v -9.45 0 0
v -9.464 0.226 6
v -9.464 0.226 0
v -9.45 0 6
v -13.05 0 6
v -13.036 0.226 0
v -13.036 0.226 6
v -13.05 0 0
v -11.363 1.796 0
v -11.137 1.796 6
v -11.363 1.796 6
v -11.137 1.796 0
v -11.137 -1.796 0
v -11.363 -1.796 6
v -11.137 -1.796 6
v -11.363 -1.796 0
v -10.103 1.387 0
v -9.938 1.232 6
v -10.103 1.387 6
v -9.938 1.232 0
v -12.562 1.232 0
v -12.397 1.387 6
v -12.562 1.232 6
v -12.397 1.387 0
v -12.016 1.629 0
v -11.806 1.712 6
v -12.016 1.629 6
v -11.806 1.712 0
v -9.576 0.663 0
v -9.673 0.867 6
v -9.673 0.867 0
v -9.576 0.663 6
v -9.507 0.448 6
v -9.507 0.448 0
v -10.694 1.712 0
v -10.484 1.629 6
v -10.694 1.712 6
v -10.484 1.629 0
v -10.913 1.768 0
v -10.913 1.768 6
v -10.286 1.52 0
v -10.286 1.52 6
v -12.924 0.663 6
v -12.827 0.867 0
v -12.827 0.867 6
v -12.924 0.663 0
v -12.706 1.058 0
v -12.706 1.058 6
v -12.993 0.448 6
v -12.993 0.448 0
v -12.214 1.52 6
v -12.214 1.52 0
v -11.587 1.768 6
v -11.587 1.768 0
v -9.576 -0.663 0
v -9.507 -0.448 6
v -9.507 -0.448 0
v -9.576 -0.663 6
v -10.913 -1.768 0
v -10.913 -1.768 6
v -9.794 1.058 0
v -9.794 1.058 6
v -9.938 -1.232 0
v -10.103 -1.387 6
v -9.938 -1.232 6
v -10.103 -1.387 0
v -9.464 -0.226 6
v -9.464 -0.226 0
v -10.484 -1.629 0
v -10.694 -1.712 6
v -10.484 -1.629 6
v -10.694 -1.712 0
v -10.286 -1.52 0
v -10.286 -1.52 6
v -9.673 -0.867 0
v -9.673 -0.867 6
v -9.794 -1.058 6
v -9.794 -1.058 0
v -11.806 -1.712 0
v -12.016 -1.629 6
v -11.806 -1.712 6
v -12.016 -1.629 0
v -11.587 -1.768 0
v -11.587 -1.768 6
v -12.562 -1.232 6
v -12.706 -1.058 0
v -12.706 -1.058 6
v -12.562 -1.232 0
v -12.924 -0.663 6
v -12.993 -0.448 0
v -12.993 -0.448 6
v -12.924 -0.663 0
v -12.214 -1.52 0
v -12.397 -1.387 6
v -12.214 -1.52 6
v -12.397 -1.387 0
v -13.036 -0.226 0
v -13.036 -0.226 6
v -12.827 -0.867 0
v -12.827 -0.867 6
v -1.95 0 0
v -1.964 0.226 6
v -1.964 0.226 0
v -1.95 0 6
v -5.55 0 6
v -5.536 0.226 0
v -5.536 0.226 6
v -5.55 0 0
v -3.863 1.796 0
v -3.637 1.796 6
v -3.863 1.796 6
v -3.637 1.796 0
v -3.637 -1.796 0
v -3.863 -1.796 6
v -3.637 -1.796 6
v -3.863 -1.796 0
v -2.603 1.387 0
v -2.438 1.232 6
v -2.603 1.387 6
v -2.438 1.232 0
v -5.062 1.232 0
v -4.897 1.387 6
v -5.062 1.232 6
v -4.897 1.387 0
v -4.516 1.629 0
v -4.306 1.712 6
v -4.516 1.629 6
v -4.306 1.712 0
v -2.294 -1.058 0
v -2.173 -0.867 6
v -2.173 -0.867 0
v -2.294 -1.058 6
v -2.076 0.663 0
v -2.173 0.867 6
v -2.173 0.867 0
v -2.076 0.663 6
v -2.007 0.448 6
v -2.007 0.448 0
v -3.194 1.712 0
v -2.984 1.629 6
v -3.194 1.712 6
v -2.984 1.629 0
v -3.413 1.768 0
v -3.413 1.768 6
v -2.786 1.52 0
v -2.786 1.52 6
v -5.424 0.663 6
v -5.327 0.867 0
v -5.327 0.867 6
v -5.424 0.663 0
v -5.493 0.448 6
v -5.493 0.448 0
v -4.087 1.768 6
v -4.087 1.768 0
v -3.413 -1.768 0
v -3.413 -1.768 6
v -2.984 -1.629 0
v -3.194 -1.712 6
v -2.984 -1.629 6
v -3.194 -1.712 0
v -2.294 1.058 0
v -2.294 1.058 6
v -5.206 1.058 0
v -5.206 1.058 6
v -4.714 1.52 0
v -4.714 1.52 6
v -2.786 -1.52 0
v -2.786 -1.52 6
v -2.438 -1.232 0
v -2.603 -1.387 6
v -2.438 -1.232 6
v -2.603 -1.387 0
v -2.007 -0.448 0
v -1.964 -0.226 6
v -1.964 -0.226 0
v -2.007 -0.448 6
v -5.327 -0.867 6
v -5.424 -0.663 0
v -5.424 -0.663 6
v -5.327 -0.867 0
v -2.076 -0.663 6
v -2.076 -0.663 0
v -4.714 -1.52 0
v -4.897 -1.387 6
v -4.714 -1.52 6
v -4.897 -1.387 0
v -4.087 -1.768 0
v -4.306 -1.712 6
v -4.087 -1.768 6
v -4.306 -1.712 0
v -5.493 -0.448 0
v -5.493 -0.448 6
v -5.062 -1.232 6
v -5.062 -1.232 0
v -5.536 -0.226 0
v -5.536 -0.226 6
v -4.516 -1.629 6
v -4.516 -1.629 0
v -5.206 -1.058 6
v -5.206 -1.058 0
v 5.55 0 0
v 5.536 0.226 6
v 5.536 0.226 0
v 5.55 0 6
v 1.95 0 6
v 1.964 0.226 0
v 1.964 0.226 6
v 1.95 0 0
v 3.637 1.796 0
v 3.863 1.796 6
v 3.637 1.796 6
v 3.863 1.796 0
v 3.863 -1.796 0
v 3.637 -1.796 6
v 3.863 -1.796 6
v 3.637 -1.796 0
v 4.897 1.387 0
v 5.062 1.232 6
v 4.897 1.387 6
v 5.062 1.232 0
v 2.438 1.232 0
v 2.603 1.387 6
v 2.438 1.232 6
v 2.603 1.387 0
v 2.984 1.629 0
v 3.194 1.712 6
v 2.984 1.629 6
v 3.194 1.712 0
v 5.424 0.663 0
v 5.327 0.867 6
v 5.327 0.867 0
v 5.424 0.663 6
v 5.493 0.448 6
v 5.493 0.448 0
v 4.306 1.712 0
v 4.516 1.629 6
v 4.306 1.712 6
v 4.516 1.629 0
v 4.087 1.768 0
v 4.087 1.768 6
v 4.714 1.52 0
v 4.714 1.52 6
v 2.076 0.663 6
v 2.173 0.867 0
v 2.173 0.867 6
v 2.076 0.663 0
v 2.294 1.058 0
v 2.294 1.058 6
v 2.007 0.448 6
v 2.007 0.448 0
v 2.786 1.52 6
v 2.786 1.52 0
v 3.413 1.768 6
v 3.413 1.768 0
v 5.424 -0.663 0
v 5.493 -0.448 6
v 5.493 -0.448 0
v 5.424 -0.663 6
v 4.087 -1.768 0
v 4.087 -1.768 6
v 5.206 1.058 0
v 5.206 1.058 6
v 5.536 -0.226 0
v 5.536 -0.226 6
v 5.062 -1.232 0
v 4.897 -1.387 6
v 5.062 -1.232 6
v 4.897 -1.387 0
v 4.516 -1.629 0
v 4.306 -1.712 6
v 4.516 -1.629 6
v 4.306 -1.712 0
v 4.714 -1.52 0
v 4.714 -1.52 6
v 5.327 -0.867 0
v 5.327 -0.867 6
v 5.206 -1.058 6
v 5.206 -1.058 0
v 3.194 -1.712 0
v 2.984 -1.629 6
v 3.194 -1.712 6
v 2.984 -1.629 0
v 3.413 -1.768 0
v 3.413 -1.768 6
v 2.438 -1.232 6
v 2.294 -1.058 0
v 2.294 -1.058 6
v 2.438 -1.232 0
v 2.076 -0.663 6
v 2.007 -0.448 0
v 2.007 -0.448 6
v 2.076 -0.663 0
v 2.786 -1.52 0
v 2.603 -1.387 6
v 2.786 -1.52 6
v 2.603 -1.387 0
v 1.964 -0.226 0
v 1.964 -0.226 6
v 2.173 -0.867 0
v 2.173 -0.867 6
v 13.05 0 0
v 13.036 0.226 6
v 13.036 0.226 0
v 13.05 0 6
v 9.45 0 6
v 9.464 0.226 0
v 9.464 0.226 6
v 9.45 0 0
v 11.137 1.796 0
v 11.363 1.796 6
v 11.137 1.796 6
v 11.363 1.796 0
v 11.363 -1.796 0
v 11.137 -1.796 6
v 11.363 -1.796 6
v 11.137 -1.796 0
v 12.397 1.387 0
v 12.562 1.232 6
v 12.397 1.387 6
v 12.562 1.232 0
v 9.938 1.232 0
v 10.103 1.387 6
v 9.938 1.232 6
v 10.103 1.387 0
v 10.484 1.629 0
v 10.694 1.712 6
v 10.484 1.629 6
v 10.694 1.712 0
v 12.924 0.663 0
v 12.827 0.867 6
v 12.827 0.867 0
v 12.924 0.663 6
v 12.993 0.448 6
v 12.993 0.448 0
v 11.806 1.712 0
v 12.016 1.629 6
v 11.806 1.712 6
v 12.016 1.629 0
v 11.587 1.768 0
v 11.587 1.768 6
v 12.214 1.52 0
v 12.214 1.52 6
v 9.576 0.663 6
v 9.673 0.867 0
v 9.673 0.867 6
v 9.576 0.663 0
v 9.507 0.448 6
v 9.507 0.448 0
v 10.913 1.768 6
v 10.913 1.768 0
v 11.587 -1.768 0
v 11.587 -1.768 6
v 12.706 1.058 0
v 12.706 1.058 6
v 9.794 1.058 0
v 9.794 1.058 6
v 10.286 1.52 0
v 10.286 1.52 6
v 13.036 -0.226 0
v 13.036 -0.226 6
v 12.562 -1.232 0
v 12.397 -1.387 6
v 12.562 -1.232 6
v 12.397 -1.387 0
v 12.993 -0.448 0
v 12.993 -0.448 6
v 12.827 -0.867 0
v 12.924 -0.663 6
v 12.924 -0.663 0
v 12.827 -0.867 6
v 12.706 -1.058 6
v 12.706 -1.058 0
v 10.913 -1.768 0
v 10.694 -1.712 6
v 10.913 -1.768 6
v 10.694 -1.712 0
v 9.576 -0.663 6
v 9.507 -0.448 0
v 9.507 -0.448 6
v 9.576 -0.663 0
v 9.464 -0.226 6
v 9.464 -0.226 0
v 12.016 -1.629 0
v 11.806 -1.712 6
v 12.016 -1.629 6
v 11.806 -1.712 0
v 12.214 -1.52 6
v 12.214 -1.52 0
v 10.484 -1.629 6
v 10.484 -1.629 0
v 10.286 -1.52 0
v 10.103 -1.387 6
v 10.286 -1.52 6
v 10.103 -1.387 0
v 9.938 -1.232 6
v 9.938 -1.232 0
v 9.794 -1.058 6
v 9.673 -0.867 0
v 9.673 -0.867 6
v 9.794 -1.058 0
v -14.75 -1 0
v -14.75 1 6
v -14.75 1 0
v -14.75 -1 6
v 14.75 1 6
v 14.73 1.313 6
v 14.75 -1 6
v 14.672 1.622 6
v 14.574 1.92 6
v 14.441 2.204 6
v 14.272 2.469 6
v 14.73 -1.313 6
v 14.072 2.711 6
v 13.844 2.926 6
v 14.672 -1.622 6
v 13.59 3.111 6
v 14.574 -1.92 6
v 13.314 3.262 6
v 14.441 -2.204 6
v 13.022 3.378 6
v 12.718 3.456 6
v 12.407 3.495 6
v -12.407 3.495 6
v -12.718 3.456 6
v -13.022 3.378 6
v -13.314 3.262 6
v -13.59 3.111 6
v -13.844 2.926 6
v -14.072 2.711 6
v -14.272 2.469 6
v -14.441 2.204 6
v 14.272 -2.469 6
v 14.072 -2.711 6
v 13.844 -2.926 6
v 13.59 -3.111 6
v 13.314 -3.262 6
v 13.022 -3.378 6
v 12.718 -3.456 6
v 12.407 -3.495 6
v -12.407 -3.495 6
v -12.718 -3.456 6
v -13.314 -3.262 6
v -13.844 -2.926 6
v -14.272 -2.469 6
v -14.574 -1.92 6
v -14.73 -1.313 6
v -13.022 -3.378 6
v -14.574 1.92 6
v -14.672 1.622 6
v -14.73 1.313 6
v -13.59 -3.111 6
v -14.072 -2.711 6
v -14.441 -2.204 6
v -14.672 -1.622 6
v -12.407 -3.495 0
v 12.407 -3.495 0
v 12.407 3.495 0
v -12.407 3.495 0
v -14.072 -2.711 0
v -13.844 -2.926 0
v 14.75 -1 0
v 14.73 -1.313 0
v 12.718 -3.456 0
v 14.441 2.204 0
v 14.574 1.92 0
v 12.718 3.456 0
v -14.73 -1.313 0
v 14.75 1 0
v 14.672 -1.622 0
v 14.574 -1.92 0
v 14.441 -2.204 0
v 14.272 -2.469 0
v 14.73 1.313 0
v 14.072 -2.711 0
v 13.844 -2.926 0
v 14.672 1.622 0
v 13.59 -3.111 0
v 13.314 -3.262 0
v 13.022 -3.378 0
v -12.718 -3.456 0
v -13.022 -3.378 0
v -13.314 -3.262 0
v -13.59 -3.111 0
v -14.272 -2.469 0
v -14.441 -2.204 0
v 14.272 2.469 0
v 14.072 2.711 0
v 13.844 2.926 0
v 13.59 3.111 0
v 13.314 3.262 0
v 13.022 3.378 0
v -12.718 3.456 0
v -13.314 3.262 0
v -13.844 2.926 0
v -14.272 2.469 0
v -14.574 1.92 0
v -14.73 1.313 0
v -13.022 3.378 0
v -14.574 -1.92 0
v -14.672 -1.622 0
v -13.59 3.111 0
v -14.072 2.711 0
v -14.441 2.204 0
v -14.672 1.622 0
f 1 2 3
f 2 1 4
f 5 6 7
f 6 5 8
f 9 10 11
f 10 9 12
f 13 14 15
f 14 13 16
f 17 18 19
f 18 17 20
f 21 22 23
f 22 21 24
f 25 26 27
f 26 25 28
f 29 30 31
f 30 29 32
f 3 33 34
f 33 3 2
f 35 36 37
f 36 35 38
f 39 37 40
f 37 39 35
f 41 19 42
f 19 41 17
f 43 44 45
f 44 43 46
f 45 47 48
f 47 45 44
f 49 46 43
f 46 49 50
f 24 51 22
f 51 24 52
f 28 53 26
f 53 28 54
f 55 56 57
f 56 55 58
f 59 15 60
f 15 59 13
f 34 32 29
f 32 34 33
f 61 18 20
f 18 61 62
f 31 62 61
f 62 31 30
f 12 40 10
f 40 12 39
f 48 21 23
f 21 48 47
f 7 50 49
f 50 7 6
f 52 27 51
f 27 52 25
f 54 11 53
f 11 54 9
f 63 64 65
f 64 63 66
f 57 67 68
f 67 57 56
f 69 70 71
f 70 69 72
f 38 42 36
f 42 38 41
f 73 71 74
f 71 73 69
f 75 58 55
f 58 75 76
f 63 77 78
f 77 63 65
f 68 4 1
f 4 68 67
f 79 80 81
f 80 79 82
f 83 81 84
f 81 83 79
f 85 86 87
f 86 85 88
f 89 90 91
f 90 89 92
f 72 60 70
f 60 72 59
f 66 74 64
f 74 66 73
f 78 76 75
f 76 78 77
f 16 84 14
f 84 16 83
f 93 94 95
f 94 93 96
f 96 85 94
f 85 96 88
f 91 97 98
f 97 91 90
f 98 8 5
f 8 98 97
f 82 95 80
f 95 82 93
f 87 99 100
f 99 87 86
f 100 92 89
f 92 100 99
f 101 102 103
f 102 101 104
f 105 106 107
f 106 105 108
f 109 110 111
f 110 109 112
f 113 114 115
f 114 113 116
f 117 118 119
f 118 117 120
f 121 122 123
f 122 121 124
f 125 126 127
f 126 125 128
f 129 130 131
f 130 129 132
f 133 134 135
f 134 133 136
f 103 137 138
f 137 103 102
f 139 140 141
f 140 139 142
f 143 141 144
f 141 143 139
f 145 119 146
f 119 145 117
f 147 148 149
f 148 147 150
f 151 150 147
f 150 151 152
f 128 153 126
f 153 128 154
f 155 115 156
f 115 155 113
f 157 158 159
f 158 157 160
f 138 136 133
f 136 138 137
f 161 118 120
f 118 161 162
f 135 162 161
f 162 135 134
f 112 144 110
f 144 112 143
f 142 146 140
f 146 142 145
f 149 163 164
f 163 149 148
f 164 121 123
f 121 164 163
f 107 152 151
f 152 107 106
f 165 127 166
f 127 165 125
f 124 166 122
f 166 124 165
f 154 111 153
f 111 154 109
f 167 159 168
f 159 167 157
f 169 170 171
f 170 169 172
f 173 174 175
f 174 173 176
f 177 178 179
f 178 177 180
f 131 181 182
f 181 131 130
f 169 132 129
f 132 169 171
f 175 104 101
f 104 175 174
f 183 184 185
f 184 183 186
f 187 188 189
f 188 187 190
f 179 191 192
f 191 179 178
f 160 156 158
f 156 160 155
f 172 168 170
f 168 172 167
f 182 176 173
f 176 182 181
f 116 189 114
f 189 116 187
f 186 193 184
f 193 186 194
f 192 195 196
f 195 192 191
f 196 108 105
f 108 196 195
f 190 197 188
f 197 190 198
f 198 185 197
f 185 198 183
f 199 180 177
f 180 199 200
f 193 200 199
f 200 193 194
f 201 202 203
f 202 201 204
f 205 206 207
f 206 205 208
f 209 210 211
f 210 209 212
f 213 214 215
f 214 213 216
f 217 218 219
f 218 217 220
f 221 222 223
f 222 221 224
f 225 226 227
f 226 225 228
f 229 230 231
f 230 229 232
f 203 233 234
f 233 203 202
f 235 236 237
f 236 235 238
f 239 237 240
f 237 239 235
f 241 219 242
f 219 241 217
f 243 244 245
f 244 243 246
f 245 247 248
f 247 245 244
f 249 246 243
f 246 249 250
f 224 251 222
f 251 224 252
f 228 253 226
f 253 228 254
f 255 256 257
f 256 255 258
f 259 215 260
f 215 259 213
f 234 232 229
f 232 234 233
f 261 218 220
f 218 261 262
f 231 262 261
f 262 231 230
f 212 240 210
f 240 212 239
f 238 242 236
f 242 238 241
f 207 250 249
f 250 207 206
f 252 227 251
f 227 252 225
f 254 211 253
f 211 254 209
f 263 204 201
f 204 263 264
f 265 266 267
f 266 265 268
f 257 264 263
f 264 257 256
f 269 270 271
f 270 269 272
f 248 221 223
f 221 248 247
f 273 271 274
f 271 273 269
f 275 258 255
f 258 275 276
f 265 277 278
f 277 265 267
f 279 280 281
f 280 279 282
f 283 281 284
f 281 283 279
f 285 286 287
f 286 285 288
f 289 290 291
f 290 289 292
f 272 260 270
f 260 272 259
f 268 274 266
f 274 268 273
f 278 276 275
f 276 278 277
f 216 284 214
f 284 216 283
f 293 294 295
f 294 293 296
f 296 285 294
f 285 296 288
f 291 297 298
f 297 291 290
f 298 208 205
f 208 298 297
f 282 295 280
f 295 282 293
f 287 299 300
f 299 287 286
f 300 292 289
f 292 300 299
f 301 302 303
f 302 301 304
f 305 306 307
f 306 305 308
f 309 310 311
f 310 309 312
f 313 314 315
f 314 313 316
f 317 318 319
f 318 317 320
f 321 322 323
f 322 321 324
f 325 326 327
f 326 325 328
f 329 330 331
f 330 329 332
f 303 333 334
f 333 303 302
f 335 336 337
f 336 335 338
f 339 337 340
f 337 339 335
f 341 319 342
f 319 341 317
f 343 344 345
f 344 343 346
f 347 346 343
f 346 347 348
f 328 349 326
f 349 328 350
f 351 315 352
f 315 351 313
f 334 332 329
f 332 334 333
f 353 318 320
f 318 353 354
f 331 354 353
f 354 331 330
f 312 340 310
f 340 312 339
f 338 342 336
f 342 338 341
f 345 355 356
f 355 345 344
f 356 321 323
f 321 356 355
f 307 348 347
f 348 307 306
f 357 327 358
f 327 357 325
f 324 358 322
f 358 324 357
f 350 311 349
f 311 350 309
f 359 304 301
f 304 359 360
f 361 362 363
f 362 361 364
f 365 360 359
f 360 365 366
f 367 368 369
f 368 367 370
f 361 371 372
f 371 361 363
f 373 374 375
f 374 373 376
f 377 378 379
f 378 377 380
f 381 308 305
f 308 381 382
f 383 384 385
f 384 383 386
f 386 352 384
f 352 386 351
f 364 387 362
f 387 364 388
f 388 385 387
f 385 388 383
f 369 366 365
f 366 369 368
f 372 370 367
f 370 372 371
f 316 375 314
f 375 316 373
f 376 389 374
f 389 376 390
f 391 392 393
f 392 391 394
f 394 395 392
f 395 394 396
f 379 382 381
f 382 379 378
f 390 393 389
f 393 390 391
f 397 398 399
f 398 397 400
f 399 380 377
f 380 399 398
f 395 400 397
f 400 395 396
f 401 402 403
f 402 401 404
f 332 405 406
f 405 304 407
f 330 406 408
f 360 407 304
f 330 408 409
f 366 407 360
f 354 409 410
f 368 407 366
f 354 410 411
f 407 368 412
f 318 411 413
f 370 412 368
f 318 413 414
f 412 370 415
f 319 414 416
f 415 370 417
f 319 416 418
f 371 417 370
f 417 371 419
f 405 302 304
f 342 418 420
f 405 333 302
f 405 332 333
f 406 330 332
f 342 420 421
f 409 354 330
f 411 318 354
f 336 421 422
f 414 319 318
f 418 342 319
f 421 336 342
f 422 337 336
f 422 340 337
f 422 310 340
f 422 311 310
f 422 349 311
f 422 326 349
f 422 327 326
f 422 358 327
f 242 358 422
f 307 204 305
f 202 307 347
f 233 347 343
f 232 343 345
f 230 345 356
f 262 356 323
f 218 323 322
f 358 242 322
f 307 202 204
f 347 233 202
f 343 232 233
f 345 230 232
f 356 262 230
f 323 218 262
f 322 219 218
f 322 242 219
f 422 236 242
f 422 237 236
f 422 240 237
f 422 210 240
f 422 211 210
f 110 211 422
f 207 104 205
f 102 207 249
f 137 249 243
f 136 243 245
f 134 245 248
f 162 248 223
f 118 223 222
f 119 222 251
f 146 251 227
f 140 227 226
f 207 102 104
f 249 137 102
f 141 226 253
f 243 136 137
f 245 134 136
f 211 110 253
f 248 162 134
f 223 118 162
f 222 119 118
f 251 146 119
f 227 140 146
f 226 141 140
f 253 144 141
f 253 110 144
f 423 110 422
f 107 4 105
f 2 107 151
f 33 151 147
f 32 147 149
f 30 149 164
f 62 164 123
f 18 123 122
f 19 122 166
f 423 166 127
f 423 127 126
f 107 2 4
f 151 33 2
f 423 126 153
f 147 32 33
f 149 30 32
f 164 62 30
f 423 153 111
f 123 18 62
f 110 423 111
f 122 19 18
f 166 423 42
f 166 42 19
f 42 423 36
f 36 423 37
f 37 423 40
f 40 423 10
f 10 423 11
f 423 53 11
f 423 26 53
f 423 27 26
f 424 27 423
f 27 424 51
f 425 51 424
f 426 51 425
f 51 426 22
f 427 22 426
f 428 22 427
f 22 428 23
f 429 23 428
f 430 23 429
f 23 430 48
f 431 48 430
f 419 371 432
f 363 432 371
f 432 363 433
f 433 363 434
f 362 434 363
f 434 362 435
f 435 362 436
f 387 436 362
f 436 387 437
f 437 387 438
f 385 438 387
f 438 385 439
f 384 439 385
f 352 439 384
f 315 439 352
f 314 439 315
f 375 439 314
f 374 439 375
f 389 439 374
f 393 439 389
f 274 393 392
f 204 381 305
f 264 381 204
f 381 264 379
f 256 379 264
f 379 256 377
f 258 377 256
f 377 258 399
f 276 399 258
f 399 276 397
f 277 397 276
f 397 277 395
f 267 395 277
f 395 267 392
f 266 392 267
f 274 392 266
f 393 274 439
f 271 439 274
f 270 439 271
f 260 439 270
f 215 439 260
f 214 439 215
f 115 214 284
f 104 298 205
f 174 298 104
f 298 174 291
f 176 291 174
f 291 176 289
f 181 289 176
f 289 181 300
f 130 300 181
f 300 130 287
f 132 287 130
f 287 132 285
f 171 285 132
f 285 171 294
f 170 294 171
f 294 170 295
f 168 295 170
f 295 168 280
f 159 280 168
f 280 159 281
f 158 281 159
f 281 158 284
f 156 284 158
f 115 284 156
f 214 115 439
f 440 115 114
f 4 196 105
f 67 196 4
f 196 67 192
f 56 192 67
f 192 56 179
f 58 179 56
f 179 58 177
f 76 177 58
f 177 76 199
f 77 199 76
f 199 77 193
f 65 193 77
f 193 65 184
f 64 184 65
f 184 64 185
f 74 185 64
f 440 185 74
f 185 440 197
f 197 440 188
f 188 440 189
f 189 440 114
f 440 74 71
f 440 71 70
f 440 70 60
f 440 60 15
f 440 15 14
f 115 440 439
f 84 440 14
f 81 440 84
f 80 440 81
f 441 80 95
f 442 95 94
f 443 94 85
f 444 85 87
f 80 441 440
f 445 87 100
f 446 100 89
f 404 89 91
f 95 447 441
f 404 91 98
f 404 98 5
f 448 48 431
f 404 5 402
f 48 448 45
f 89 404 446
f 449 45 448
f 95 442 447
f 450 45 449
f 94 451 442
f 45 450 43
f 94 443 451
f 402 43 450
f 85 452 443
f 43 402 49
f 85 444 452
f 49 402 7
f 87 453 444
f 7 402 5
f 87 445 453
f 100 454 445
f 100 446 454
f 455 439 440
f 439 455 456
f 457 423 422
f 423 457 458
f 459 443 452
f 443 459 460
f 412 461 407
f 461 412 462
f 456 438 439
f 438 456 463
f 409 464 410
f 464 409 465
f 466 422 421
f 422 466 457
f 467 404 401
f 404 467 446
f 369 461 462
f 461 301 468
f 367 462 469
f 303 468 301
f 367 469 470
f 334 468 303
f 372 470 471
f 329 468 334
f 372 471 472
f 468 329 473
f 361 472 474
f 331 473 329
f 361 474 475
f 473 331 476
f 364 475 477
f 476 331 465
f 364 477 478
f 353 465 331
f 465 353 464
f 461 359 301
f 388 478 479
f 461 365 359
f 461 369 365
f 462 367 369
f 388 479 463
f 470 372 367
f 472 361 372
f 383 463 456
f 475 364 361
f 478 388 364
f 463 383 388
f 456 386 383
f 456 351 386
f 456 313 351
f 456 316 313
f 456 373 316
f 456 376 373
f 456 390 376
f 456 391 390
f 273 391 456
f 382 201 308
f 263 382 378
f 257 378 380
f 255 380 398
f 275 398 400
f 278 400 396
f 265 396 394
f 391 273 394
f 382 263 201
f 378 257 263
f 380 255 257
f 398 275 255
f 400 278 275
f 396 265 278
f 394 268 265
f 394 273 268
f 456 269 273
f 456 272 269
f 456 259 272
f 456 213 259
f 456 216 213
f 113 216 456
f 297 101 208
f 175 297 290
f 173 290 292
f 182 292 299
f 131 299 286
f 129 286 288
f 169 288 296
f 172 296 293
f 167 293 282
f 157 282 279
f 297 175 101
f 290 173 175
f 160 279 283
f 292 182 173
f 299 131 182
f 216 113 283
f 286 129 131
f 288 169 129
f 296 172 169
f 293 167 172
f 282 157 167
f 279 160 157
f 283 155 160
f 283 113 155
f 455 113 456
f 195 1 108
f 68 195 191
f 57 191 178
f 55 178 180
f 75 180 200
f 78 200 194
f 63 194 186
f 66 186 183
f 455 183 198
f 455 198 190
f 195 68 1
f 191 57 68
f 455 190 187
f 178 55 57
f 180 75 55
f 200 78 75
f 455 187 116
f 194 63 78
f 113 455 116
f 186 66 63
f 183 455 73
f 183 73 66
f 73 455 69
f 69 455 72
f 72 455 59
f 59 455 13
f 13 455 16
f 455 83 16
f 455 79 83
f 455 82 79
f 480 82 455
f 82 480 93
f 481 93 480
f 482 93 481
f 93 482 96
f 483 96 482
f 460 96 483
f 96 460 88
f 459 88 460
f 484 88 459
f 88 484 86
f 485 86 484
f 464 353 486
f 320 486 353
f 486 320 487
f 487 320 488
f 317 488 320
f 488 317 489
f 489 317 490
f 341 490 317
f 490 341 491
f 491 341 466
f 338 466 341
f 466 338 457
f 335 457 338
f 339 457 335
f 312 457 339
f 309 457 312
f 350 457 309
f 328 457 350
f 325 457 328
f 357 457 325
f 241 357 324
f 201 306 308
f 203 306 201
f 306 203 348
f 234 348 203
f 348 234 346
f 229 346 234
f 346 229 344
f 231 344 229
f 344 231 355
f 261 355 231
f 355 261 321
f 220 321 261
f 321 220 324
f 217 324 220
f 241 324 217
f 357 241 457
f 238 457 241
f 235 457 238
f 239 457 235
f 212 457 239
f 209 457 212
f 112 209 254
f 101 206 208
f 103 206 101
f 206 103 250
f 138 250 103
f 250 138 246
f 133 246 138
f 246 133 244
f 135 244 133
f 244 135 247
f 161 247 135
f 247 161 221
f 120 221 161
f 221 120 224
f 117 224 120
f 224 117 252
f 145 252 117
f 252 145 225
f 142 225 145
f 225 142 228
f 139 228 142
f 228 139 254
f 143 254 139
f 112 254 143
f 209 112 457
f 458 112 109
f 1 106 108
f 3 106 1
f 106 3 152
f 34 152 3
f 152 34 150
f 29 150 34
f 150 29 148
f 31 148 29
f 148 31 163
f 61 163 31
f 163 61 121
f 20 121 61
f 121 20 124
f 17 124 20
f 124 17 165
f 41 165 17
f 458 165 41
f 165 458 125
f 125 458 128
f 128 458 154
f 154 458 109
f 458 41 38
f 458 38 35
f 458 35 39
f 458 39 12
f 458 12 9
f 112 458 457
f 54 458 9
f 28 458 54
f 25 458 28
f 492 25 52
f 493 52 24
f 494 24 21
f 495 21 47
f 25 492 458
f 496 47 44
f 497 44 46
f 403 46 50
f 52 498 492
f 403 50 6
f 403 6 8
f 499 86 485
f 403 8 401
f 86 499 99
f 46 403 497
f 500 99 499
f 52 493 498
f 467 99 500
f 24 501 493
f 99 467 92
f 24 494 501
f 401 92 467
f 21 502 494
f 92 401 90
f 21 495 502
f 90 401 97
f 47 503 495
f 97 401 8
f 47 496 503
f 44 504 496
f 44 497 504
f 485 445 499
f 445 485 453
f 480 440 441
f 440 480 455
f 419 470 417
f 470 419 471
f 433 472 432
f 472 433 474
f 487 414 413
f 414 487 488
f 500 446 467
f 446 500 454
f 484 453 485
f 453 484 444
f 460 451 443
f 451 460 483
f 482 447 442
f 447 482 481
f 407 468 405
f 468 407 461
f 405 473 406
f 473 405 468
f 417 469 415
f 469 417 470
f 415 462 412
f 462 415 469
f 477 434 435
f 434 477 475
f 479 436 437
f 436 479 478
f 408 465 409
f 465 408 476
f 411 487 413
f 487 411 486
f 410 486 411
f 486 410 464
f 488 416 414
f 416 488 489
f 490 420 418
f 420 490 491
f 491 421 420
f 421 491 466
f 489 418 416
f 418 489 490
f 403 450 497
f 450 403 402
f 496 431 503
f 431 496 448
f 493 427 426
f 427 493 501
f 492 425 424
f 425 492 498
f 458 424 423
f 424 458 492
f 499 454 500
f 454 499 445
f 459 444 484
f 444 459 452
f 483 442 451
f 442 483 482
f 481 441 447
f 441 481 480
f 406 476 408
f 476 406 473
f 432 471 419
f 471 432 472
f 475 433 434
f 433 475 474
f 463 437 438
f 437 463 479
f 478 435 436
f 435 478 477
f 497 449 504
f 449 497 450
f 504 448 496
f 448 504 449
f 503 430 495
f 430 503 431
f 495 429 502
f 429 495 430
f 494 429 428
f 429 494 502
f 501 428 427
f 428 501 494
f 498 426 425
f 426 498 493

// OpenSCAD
$fn = 50;


difference() {
	union() {
		translate(v = [0, 0, 0]) {
			rotate(a = [0, 0, 0]) {
				hull() {
					translate(v = [-12.2500000000, 1.0000000000, 0]) {
						rotate(a = [0, 0, 0]) {
							translate(v = [0, 0, 0]) {
								rotate(a = [0, 0, 0]) {
									cylinder(h = 6, r = 2.5000000000);
								}
							}
						}
					}
					translate(v = [12.2500000000, 1.0000000000, 0]) {
						rotate(a = [0, 0, 0]) {
							translate(v = [0, 0, 0]) {
								rotate(a = [0, 0, 0]) {
									cylinder(h = 6, r = 2.5000000000);
								}
							}
						}
					}
					translate(v = [-12.2500000000, -1.0000000000, 0]) {
						rotate(a = [0, 0, 0]) {
							translate(v = [0, 0, 0]) {
								rotate(a = [0, 0, 0]) {
									cylinder(h = 6, r = 2.5000000000);
								}
							}
						}
					}
					translate(v = [12.2500000000, -1.0000000000, 0]) {
						rotate(a = [0, 0, 0]) {
							translate(v = [0, 0, 0]) {
								rotate(a = [0, 0, 0]) {
									cylinder(h = 6, r = 2.5000000000);
								}
							}
						}
					}
				}
			}
		}
	}
	union() {
		translate(v = [-11.2500000000, 0.0000000000, 0]) {
			rotate(a = [0, 0, 0]) {
				translate(v = [0, 0, -50]) {
					rotate(a = [0, 0, 0]) {
						cylinder(h = 100, r = 1.8000000000);
					}
				}
			}
		}
		translate(v = [-3.7500000000, 0.0000000000, 0]) {
			rotate(a = [0, 0, 0]) {
				translate(v = [0, 0, -50]) {
					rotate(a = [0, 0, 0]) {
						cylinder(h = 100, r = 1.8000000000);
					}
				}
			}
		}
		translate(v = [3.7500000000, 0.0000000000, 0]) {
			rotate(a = [0, 0, 0]) {
				translate(v = [0, 0, -50]) {
					rotate(a = [0, 0, 0]) {
						cylinder(h = 100, r = 1.8000000000);
					}
				}
			}
		}
		translate(v = [11.2500000000, 0.0000000000, 0]) {
			rotate(a = [0, 0, 0]) {
				translate(v = [0, 0, -50]) {
					rotate(a = [0, 0, 0]) {
						cylinder(h = 100, r = 1.8000000000);
					}
				}
			}
		}
	}
}
